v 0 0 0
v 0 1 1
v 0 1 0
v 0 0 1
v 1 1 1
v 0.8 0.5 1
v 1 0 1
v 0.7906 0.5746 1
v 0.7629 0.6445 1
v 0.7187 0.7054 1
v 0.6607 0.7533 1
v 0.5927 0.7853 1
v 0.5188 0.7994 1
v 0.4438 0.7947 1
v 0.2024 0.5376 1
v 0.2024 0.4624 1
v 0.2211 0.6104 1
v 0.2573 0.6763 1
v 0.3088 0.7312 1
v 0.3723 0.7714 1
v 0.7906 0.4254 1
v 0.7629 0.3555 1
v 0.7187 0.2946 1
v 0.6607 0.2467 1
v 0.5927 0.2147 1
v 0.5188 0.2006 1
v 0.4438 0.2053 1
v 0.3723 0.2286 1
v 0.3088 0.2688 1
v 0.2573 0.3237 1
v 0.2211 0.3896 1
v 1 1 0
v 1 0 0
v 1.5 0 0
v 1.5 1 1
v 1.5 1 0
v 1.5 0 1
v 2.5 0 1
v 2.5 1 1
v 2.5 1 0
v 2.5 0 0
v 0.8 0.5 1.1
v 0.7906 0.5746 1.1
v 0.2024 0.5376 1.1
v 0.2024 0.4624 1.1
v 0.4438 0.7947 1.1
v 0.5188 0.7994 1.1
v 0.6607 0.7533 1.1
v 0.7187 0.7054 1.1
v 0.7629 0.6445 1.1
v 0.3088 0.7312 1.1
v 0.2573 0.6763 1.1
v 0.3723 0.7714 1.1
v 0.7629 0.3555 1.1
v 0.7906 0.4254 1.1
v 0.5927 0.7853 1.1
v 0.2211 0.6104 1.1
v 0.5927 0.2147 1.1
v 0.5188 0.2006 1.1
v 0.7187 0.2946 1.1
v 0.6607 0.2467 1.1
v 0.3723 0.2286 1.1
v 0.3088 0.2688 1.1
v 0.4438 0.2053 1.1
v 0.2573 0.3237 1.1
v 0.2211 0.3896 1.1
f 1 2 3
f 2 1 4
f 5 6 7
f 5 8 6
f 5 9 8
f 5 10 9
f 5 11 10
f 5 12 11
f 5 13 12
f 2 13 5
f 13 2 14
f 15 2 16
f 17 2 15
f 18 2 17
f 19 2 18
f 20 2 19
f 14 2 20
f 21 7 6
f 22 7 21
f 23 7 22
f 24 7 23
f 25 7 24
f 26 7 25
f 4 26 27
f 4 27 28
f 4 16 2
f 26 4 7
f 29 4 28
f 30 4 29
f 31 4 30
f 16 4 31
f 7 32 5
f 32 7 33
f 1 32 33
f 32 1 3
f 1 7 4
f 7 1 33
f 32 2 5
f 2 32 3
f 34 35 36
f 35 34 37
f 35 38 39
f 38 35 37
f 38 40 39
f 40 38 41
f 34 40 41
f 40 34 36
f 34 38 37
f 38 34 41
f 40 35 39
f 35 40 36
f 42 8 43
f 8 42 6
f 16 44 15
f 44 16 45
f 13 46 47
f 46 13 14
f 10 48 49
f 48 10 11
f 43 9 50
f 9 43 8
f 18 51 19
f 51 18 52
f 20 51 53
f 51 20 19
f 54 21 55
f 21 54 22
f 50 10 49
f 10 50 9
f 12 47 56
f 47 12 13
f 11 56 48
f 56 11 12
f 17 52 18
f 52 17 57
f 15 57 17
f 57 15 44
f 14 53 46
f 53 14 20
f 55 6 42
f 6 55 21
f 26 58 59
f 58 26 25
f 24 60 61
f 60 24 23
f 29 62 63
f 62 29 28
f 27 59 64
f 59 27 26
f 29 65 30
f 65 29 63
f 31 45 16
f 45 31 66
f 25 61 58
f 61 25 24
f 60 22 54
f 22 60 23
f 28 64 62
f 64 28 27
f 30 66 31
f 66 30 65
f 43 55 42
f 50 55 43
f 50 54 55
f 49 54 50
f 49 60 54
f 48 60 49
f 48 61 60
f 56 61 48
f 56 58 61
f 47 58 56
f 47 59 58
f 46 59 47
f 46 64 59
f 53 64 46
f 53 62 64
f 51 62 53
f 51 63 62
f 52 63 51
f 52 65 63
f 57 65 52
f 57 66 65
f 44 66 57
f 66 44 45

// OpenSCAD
// Generated by SolidPython 1.1.1 on 2021-10-28 00:02:38
$fn = 25;


union() {
	cube();
	translate(v = [1.5000000000, 0, 0]) {
		cube();
	}
	translate(v = [0.5000000000, 0.5000000000, 0.5000000000]) {
		cylinder(h = 0.6000000000, r = 0.3000000000);
	}
}
/***********************************************
*********      SolidPython code:      **********
************************************************
 
# SolidPython example code 
# Brygg Ullmer, Clemson University

from solid import *        # load in SolidPython/SCAD support code

c1 = cube()
c2 = translate([1.5, 0, 0])(c1)
outGeom = c1 + c2

y1 = cylinder(r=.3, h=.6)
y2 = translate([.5, .5, .5])(y1)
outGeom += y2

#print(scad_render(outGeom))
radialSegments = 25; hdr = '$fn = %s;' % radialSegments # create a header for the export
scad_render_to_file(outGeom, 'exSolid02.scad', file_header=hdr) # write the .scad file

### end ###

 
 
************************************************/
